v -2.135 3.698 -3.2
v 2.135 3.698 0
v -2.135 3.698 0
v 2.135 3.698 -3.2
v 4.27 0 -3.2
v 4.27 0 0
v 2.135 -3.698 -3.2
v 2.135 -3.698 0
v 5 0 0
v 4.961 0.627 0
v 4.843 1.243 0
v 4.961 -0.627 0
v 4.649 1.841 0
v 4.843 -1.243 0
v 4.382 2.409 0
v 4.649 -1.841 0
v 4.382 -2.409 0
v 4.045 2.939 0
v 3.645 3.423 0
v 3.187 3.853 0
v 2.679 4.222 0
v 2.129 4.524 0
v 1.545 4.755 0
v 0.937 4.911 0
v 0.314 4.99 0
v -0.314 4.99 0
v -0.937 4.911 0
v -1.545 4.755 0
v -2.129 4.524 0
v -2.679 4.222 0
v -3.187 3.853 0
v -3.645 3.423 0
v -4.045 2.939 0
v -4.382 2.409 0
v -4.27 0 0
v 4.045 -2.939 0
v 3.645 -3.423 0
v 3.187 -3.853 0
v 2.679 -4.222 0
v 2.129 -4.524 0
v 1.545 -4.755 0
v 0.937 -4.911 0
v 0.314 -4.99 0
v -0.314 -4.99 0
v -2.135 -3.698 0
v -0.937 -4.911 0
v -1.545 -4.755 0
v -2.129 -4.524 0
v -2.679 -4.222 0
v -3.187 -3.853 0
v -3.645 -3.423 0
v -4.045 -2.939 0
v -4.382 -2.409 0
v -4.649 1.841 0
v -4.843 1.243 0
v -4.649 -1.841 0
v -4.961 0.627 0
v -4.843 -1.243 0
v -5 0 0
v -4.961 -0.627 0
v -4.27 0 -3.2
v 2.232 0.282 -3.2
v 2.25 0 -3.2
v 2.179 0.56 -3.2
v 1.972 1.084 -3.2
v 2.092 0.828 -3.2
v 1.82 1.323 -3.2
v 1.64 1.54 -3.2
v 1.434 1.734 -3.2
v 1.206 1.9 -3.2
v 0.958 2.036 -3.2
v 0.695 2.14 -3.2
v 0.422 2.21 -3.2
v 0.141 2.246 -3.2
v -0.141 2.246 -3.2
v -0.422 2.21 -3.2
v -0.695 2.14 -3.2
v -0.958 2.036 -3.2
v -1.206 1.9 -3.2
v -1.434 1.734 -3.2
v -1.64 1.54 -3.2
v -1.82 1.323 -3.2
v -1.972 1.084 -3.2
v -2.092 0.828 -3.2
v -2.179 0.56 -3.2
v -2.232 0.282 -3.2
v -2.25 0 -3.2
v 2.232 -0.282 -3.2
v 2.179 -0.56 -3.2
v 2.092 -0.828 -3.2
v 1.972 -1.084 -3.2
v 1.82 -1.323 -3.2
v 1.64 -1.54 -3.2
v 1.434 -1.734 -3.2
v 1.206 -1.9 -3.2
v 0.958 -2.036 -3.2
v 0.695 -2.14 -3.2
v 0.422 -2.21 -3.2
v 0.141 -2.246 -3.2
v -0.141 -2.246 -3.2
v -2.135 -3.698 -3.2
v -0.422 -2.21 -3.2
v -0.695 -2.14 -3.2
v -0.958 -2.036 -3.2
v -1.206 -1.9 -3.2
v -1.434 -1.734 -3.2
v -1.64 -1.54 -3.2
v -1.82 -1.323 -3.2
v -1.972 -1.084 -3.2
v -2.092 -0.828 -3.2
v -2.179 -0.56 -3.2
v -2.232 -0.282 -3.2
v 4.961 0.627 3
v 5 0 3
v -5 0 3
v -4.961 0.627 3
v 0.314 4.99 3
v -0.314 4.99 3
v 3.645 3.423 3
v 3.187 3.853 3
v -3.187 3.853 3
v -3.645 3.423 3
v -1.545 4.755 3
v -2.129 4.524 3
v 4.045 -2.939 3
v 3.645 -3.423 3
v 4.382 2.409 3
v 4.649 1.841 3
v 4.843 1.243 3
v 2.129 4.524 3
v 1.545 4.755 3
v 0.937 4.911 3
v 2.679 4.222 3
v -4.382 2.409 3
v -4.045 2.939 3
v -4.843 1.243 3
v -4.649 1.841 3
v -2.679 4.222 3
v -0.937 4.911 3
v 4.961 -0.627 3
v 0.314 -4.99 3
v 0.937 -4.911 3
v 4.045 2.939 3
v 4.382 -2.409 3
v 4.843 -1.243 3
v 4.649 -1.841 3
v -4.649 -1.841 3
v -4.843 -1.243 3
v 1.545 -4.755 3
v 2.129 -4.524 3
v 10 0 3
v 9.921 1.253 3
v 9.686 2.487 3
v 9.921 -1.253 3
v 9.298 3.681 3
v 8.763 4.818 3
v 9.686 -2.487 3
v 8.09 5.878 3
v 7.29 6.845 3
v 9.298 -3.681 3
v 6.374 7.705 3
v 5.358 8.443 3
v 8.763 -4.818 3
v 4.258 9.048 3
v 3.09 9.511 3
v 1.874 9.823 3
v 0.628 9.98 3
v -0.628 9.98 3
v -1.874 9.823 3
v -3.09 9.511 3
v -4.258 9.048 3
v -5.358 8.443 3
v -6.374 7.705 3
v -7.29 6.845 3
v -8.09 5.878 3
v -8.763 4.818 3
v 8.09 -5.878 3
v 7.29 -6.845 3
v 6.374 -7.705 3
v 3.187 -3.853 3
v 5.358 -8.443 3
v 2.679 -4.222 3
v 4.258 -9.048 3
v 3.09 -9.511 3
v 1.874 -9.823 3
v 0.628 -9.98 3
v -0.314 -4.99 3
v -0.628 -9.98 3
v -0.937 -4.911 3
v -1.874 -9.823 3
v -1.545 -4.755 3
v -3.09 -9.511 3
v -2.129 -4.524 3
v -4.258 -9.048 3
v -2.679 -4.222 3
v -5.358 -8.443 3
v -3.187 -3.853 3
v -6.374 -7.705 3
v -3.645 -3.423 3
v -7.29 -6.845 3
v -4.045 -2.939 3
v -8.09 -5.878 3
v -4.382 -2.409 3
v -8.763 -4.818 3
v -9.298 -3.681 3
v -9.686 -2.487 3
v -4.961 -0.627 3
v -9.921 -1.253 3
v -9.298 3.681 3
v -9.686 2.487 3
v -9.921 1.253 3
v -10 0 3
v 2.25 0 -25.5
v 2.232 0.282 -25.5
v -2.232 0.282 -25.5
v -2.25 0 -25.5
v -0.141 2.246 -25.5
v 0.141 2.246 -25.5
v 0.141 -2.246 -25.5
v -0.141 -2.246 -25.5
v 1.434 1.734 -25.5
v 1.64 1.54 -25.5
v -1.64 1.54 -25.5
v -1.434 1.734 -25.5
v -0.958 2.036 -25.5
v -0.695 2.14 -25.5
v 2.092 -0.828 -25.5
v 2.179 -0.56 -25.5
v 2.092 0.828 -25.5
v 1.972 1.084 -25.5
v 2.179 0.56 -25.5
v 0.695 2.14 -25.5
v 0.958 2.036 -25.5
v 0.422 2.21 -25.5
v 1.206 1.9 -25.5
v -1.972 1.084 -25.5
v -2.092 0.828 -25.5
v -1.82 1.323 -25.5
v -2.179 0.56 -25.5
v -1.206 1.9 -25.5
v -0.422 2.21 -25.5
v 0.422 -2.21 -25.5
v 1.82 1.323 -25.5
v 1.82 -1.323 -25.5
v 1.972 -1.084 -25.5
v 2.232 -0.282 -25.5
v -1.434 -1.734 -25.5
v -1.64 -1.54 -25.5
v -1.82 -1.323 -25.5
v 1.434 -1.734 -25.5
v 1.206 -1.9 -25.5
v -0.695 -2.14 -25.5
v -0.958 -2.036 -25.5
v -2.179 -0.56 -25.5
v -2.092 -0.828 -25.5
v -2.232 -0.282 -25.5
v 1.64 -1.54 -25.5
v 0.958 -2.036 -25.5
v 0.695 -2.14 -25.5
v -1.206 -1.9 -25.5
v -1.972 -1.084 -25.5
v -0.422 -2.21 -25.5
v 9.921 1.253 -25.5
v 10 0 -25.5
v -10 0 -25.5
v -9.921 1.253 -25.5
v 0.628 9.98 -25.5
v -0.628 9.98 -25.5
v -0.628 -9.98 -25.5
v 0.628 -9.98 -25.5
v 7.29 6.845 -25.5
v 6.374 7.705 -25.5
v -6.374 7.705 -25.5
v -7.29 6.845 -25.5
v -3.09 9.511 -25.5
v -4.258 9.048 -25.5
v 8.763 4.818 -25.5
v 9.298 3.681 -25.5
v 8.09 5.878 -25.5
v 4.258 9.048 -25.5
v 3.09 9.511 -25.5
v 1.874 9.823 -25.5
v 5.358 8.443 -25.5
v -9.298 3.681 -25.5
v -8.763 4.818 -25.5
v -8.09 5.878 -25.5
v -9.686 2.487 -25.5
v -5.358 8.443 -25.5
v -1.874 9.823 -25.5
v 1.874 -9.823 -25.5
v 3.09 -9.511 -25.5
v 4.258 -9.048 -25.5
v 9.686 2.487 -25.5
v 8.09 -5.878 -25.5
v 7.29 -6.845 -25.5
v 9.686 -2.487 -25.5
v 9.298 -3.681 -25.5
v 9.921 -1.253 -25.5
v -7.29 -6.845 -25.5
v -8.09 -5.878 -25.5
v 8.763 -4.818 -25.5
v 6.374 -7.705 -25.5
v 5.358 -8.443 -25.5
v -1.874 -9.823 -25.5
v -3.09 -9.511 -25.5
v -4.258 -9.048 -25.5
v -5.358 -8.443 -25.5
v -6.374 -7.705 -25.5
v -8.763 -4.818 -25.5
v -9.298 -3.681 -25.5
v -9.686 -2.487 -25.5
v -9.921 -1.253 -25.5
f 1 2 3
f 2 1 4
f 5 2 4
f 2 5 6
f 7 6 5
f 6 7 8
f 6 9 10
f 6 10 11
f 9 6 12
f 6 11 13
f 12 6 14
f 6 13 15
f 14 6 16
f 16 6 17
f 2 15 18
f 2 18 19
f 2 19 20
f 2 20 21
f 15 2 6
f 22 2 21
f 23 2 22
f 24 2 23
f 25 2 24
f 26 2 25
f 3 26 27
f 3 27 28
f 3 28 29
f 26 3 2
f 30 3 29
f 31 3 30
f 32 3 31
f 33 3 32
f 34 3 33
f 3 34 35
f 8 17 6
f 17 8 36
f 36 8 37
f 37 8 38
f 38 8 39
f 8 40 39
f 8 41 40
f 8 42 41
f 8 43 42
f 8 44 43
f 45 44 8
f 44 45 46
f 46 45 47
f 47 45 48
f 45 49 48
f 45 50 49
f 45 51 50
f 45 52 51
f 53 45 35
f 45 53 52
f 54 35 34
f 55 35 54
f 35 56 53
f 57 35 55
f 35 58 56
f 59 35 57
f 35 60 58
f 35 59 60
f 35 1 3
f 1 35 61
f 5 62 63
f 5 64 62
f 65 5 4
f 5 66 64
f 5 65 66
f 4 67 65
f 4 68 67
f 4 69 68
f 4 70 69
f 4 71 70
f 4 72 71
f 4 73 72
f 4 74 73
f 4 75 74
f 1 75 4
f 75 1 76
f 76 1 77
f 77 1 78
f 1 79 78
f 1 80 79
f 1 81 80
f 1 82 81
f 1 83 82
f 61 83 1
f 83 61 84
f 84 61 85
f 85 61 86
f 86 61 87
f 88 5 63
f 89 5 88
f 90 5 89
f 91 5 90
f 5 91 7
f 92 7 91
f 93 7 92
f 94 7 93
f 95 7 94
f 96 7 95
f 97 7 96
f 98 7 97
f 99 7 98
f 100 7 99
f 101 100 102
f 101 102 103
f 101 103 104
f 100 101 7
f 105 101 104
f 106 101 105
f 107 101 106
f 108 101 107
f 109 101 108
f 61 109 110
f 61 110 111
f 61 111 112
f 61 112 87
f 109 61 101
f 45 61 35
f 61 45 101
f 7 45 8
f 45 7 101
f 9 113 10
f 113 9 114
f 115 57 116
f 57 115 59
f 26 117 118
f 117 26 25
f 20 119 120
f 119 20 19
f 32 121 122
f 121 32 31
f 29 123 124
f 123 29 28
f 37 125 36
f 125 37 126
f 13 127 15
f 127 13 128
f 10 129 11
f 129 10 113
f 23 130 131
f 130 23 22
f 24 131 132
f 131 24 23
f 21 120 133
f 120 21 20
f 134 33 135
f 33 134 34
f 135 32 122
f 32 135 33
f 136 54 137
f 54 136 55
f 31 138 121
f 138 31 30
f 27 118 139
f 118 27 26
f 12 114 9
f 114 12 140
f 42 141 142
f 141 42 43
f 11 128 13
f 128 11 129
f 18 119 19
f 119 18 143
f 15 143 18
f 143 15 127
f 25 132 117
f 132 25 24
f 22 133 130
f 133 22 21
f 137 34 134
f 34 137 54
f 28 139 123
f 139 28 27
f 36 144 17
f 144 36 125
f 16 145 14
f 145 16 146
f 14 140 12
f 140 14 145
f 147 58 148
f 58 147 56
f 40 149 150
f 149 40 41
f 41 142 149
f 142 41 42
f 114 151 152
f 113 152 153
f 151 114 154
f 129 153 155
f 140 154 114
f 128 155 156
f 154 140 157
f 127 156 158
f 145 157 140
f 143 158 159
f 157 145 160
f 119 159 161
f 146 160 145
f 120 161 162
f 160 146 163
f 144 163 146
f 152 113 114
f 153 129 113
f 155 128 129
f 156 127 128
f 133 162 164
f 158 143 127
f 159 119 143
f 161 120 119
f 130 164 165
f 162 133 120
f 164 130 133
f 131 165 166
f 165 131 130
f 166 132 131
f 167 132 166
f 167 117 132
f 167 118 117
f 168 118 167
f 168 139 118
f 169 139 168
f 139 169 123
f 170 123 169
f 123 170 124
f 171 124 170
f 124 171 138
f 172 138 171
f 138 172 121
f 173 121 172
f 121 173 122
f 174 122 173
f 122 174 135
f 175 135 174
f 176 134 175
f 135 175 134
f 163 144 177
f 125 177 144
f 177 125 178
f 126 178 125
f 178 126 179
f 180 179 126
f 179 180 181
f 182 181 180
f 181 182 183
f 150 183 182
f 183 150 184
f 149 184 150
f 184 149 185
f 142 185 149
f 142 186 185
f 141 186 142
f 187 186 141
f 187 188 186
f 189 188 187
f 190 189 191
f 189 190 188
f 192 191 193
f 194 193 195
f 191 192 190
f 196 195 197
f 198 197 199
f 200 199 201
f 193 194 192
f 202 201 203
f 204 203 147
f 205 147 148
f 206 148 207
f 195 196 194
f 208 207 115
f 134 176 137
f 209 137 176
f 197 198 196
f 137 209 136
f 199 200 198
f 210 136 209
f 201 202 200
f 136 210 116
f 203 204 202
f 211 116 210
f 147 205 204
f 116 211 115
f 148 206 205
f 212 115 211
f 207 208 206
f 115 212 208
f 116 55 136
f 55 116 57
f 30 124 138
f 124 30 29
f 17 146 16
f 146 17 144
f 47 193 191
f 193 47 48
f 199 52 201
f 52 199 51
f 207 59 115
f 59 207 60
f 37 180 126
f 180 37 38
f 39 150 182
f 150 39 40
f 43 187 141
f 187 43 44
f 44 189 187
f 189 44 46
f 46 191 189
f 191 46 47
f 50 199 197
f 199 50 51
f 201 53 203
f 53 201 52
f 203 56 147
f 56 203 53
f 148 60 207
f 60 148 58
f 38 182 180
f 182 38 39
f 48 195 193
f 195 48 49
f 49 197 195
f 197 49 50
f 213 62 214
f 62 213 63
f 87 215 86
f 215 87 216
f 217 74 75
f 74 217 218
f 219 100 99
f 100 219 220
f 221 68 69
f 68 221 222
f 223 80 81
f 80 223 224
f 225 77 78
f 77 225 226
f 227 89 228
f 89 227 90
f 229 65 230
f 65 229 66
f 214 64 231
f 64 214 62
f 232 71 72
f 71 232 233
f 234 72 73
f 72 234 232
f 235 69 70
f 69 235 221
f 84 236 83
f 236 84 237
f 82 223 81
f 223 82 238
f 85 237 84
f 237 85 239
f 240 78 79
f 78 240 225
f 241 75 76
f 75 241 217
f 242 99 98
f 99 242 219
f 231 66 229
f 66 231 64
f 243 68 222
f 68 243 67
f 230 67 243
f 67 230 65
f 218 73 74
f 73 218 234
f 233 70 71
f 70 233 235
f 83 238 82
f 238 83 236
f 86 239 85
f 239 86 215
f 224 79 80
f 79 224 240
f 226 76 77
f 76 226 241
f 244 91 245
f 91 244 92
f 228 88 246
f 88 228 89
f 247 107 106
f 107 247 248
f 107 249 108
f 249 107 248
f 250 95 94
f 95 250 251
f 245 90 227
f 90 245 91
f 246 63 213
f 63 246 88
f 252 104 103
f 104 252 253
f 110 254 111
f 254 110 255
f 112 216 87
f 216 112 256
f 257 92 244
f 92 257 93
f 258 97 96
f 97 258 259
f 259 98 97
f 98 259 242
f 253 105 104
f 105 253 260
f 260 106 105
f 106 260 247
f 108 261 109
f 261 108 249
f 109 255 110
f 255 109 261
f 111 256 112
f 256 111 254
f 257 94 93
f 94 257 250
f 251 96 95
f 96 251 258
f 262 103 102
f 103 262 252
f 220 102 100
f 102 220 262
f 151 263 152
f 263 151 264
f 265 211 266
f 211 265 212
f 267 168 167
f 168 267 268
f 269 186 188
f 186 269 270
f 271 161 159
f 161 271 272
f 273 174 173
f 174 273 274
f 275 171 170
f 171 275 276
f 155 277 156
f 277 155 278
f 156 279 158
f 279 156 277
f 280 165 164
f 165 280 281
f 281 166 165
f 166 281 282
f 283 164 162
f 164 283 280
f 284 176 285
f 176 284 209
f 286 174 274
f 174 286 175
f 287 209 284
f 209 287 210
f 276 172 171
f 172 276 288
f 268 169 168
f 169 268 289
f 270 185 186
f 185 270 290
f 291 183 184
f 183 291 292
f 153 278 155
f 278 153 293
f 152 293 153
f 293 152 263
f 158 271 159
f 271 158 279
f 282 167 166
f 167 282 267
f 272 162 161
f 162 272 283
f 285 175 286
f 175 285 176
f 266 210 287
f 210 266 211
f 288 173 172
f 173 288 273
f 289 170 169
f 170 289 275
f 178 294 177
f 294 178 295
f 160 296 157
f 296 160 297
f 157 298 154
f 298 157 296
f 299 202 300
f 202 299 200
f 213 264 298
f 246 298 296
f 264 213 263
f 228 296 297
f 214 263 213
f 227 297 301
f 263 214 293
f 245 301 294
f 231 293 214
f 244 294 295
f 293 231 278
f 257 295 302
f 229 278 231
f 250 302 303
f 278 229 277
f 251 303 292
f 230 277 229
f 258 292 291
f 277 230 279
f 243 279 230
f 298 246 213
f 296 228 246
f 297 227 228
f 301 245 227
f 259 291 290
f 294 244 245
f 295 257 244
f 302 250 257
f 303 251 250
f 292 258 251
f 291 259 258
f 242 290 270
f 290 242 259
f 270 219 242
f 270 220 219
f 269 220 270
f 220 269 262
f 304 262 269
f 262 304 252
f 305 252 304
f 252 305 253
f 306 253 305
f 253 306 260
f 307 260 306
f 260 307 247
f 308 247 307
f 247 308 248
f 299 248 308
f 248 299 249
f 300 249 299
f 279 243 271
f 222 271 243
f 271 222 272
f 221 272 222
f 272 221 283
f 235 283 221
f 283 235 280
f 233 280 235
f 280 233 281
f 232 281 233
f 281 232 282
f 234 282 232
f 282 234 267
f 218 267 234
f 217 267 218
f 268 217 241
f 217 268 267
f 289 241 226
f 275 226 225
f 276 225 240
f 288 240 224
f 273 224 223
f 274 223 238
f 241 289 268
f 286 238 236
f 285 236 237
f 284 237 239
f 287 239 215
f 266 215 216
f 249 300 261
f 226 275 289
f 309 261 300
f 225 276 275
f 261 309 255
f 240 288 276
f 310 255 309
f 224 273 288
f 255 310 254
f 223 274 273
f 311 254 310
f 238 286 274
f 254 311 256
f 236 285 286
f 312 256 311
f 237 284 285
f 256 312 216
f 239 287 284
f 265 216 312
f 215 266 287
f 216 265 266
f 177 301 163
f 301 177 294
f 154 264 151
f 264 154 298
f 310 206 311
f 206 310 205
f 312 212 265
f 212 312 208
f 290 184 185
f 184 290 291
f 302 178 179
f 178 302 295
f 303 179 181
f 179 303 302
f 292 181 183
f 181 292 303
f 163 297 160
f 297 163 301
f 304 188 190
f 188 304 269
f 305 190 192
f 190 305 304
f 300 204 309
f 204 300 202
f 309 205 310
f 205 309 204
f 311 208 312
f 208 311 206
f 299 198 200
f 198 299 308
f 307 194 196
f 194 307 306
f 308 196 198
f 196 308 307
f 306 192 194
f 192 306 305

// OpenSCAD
$fn = 50;

difference() {
	union() {
		translate(v = [0, 0, -25.5]) {
			cylinder(h = 28.5, r = 10.0);
		}
	}
	union() {
		translate(v = [0, 0, 0]) {
			rotate(a = [0, 0, 0]) {
				difference() {
					union() {
						translate(v = [0, 0, -3.2]) {
							linear_extrude(height = 3.2) {
								polygon(points = [[4.2698, 0.0], [2.1349000000000005, 3.697755269078796], [-2.134899999999999, 3.6977552690787965], [-4.2698, 5.228996902999369e-16], [-2.134900000000002, -3.6977552690787956], [2.1348999999999974, -3.697755269078798]]);
							}
						}
					}
					union();
				}
			}
		}
		#cylinder(h = 3, r = 5.0);
		#translate(v = [0, 0, -100.0]) {
			cylinder(h = 200, r = 2.25);
		}
	}
}
